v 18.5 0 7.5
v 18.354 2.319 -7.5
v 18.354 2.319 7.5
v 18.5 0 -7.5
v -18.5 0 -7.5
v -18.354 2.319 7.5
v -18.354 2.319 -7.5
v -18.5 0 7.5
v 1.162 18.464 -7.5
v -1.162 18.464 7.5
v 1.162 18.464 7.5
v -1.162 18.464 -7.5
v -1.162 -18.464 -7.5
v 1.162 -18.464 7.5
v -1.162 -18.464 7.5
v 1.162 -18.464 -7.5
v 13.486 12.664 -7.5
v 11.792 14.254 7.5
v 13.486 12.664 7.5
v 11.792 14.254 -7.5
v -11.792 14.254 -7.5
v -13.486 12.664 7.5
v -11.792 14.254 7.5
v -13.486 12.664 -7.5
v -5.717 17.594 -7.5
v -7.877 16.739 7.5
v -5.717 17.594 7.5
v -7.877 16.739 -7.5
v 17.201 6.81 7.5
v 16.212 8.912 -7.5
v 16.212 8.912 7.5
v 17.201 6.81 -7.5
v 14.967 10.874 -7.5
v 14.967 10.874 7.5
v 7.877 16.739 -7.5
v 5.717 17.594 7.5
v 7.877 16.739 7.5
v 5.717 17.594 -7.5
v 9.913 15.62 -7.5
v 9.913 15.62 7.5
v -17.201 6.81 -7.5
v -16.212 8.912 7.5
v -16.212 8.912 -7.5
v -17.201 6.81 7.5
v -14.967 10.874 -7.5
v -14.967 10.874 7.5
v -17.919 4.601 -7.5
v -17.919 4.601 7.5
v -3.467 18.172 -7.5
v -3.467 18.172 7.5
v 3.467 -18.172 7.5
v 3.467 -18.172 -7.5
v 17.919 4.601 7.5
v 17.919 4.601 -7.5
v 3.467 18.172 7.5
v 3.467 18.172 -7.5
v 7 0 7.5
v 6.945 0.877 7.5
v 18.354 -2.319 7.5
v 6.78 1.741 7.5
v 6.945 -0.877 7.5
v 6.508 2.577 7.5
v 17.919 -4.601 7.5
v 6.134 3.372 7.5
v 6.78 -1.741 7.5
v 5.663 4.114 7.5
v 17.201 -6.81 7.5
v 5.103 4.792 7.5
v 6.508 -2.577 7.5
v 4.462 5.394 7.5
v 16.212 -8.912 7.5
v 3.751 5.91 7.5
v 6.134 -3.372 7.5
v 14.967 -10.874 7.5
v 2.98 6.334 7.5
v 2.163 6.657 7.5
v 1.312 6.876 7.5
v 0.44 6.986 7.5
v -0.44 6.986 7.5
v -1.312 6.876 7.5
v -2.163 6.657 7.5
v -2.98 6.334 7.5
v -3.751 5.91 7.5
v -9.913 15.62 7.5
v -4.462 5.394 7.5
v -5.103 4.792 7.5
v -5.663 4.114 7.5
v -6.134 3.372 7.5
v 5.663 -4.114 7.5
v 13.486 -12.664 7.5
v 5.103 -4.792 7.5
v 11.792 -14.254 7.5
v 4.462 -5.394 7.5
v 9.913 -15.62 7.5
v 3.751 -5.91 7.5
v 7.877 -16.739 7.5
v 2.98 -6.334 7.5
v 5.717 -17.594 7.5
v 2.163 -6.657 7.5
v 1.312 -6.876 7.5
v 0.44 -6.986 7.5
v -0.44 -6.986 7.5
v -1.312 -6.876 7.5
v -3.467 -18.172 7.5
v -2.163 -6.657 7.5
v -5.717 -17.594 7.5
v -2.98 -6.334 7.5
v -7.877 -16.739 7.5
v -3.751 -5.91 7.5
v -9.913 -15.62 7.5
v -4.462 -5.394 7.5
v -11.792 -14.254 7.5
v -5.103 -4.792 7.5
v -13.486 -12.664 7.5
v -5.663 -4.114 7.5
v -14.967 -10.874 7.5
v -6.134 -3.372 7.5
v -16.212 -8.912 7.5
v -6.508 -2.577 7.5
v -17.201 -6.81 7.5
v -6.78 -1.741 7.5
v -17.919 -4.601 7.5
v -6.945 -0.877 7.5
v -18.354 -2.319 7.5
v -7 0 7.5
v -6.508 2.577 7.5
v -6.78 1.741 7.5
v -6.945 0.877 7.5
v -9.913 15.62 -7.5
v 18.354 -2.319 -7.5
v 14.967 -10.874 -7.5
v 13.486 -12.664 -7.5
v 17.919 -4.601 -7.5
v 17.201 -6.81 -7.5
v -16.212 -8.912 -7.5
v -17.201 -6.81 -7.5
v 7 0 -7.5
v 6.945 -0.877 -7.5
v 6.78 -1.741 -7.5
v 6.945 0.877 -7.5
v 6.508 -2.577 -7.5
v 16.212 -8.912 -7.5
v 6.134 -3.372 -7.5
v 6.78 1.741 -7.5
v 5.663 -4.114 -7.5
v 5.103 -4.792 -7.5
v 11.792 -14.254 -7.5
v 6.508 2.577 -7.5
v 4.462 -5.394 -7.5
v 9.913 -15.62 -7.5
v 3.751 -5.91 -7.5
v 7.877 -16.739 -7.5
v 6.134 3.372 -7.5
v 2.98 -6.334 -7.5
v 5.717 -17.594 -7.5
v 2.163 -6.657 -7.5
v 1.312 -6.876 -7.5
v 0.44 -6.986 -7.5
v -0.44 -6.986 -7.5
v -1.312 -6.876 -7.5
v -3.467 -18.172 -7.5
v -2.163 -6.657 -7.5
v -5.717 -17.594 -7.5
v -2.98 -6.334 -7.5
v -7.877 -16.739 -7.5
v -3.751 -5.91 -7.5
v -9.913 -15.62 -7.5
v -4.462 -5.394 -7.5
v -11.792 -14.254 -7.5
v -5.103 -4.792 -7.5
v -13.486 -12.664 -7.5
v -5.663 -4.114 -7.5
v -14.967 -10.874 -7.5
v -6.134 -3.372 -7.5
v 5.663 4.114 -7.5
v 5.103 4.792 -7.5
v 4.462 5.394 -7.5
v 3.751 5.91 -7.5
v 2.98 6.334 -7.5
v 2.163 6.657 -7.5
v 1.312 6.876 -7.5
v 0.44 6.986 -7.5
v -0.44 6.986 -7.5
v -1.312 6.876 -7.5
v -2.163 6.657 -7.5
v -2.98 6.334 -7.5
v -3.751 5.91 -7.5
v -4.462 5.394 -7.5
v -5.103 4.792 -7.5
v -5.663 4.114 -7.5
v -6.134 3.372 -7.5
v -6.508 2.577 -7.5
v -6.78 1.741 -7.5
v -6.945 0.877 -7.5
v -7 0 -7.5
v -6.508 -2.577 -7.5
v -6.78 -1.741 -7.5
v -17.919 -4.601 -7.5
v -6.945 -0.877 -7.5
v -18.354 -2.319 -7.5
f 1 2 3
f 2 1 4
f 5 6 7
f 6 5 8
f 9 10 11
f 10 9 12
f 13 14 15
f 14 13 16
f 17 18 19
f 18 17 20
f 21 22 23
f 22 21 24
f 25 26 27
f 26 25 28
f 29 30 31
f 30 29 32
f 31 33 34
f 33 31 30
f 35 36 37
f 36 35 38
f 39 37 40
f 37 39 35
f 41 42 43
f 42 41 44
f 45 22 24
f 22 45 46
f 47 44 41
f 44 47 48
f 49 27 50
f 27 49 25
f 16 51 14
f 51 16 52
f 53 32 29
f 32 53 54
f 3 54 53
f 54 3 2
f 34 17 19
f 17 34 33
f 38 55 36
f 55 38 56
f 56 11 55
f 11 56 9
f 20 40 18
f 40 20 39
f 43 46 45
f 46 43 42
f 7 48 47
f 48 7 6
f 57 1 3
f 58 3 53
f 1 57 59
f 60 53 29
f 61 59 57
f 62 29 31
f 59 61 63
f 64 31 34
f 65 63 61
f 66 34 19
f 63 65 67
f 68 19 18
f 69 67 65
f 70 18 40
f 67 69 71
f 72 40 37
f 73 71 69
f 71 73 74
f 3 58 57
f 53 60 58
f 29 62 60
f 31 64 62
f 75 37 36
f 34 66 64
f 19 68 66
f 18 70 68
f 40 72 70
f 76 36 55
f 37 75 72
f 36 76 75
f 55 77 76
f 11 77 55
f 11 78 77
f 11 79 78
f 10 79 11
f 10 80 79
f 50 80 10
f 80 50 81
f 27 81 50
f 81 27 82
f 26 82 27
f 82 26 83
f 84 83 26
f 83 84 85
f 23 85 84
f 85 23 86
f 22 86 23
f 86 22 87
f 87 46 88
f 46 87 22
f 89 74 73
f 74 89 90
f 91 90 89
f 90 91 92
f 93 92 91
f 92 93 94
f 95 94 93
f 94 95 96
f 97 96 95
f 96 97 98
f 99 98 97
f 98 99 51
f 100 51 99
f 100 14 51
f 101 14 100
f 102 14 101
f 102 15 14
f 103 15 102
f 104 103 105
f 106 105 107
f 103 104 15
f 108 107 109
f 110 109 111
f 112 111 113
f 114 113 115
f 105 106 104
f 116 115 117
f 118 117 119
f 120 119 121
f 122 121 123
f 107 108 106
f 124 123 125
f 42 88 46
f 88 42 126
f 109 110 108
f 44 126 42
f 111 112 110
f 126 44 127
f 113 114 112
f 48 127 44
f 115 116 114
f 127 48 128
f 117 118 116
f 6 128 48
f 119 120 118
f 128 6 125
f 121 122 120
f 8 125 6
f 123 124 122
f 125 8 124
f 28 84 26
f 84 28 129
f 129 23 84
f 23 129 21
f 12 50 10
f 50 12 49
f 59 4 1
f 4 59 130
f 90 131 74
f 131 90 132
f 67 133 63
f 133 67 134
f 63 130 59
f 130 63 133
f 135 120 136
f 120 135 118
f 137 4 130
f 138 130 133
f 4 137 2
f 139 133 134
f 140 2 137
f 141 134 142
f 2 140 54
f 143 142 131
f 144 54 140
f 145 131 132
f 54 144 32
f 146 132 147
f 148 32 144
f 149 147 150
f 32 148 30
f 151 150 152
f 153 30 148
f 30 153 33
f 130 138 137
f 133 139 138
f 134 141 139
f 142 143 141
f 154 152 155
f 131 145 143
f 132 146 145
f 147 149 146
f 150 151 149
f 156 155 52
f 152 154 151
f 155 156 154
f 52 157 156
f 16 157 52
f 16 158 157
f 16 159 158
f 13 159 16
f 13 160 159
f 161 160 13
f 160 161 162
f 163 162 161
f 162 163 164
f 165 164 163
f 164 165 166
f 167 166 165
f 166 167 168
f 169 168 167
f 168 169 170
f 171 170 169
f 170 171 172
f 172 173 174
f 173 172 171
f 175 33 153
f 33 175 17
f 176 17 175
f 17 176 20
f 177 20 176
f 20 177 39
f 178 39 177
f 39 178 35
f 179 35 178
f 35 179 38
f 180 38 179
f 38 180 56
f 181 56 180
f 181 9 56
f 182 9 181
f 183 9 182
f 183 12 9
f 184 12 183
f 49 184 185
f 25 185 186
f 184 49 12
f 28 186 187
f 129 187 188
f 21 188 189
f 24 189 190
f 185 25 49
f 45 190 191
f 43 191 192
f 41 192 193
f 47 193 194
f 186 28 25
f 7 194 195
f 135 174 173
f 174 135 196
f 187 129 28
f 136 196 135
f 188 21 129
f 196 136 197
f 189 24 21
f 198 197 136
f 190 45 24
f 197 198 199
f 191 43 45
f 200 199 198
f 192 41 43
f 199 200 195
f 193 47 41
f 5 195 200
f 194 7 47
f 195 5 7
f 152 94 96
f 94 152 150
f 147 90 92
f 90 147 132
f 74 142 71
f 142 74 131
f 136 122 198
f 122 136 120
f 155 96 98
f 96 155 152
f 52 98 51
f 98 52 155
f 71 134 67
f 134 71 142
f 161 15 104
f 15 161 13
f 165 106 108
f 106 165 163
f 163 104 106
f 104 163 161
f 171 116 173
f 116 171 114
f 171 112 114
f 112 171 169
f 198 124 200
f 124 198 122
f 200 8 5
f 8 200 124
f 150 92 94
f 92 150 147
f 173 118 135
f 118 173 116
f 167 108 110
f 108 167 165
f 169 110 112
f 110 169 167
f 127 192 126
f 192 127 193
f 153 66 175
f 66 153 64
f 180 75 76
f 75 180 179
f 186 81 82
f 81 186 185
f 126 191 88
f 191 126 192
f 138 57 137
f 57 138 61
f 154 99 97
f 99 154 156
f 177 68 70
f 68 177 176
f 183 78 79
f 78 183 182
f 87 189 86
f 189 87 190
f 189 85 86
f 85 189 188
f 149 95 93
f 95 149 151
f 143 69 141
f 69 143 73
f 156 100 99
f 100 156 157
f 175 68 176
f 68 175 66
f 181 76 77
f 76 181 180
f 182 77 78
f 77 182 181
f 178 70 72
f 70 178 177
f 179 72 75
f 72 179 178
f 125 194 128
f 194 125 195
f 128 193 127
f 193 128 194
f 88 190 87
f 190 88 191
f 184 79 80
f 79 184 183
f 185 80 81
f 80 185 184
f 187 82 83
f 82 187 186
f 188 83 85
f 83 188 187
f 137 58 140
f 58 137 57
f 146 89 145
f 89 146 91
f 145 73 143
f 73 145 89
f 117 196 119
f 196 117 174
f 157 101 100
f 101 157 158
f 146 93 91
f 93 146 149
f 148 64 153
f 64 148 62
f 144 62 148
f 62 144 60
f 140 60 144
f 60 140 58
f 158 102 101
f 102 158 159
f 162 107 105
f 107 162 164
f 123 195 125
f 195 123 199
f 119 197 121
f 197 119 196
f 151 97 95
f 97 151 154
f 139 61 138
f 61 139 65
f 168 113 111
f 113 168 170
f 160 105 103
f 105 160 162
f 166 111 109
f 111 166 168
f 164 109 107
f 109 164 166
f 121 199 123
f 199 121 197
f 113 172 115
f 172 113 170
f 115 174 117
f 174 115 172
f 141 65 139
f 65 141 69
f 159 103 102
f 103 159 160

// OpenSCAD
$fn = 50;


difference() {
	union() {
		translate(v = [0, 0, -7.5000000000]) {
			cylinder(h = 15, r = 18.5000000000);
		}
	}
	union() {
		translate(v = [0, 0, -100.0000000000]) {
			cylinder(h = 200, r = 7);
		}
	}
}
